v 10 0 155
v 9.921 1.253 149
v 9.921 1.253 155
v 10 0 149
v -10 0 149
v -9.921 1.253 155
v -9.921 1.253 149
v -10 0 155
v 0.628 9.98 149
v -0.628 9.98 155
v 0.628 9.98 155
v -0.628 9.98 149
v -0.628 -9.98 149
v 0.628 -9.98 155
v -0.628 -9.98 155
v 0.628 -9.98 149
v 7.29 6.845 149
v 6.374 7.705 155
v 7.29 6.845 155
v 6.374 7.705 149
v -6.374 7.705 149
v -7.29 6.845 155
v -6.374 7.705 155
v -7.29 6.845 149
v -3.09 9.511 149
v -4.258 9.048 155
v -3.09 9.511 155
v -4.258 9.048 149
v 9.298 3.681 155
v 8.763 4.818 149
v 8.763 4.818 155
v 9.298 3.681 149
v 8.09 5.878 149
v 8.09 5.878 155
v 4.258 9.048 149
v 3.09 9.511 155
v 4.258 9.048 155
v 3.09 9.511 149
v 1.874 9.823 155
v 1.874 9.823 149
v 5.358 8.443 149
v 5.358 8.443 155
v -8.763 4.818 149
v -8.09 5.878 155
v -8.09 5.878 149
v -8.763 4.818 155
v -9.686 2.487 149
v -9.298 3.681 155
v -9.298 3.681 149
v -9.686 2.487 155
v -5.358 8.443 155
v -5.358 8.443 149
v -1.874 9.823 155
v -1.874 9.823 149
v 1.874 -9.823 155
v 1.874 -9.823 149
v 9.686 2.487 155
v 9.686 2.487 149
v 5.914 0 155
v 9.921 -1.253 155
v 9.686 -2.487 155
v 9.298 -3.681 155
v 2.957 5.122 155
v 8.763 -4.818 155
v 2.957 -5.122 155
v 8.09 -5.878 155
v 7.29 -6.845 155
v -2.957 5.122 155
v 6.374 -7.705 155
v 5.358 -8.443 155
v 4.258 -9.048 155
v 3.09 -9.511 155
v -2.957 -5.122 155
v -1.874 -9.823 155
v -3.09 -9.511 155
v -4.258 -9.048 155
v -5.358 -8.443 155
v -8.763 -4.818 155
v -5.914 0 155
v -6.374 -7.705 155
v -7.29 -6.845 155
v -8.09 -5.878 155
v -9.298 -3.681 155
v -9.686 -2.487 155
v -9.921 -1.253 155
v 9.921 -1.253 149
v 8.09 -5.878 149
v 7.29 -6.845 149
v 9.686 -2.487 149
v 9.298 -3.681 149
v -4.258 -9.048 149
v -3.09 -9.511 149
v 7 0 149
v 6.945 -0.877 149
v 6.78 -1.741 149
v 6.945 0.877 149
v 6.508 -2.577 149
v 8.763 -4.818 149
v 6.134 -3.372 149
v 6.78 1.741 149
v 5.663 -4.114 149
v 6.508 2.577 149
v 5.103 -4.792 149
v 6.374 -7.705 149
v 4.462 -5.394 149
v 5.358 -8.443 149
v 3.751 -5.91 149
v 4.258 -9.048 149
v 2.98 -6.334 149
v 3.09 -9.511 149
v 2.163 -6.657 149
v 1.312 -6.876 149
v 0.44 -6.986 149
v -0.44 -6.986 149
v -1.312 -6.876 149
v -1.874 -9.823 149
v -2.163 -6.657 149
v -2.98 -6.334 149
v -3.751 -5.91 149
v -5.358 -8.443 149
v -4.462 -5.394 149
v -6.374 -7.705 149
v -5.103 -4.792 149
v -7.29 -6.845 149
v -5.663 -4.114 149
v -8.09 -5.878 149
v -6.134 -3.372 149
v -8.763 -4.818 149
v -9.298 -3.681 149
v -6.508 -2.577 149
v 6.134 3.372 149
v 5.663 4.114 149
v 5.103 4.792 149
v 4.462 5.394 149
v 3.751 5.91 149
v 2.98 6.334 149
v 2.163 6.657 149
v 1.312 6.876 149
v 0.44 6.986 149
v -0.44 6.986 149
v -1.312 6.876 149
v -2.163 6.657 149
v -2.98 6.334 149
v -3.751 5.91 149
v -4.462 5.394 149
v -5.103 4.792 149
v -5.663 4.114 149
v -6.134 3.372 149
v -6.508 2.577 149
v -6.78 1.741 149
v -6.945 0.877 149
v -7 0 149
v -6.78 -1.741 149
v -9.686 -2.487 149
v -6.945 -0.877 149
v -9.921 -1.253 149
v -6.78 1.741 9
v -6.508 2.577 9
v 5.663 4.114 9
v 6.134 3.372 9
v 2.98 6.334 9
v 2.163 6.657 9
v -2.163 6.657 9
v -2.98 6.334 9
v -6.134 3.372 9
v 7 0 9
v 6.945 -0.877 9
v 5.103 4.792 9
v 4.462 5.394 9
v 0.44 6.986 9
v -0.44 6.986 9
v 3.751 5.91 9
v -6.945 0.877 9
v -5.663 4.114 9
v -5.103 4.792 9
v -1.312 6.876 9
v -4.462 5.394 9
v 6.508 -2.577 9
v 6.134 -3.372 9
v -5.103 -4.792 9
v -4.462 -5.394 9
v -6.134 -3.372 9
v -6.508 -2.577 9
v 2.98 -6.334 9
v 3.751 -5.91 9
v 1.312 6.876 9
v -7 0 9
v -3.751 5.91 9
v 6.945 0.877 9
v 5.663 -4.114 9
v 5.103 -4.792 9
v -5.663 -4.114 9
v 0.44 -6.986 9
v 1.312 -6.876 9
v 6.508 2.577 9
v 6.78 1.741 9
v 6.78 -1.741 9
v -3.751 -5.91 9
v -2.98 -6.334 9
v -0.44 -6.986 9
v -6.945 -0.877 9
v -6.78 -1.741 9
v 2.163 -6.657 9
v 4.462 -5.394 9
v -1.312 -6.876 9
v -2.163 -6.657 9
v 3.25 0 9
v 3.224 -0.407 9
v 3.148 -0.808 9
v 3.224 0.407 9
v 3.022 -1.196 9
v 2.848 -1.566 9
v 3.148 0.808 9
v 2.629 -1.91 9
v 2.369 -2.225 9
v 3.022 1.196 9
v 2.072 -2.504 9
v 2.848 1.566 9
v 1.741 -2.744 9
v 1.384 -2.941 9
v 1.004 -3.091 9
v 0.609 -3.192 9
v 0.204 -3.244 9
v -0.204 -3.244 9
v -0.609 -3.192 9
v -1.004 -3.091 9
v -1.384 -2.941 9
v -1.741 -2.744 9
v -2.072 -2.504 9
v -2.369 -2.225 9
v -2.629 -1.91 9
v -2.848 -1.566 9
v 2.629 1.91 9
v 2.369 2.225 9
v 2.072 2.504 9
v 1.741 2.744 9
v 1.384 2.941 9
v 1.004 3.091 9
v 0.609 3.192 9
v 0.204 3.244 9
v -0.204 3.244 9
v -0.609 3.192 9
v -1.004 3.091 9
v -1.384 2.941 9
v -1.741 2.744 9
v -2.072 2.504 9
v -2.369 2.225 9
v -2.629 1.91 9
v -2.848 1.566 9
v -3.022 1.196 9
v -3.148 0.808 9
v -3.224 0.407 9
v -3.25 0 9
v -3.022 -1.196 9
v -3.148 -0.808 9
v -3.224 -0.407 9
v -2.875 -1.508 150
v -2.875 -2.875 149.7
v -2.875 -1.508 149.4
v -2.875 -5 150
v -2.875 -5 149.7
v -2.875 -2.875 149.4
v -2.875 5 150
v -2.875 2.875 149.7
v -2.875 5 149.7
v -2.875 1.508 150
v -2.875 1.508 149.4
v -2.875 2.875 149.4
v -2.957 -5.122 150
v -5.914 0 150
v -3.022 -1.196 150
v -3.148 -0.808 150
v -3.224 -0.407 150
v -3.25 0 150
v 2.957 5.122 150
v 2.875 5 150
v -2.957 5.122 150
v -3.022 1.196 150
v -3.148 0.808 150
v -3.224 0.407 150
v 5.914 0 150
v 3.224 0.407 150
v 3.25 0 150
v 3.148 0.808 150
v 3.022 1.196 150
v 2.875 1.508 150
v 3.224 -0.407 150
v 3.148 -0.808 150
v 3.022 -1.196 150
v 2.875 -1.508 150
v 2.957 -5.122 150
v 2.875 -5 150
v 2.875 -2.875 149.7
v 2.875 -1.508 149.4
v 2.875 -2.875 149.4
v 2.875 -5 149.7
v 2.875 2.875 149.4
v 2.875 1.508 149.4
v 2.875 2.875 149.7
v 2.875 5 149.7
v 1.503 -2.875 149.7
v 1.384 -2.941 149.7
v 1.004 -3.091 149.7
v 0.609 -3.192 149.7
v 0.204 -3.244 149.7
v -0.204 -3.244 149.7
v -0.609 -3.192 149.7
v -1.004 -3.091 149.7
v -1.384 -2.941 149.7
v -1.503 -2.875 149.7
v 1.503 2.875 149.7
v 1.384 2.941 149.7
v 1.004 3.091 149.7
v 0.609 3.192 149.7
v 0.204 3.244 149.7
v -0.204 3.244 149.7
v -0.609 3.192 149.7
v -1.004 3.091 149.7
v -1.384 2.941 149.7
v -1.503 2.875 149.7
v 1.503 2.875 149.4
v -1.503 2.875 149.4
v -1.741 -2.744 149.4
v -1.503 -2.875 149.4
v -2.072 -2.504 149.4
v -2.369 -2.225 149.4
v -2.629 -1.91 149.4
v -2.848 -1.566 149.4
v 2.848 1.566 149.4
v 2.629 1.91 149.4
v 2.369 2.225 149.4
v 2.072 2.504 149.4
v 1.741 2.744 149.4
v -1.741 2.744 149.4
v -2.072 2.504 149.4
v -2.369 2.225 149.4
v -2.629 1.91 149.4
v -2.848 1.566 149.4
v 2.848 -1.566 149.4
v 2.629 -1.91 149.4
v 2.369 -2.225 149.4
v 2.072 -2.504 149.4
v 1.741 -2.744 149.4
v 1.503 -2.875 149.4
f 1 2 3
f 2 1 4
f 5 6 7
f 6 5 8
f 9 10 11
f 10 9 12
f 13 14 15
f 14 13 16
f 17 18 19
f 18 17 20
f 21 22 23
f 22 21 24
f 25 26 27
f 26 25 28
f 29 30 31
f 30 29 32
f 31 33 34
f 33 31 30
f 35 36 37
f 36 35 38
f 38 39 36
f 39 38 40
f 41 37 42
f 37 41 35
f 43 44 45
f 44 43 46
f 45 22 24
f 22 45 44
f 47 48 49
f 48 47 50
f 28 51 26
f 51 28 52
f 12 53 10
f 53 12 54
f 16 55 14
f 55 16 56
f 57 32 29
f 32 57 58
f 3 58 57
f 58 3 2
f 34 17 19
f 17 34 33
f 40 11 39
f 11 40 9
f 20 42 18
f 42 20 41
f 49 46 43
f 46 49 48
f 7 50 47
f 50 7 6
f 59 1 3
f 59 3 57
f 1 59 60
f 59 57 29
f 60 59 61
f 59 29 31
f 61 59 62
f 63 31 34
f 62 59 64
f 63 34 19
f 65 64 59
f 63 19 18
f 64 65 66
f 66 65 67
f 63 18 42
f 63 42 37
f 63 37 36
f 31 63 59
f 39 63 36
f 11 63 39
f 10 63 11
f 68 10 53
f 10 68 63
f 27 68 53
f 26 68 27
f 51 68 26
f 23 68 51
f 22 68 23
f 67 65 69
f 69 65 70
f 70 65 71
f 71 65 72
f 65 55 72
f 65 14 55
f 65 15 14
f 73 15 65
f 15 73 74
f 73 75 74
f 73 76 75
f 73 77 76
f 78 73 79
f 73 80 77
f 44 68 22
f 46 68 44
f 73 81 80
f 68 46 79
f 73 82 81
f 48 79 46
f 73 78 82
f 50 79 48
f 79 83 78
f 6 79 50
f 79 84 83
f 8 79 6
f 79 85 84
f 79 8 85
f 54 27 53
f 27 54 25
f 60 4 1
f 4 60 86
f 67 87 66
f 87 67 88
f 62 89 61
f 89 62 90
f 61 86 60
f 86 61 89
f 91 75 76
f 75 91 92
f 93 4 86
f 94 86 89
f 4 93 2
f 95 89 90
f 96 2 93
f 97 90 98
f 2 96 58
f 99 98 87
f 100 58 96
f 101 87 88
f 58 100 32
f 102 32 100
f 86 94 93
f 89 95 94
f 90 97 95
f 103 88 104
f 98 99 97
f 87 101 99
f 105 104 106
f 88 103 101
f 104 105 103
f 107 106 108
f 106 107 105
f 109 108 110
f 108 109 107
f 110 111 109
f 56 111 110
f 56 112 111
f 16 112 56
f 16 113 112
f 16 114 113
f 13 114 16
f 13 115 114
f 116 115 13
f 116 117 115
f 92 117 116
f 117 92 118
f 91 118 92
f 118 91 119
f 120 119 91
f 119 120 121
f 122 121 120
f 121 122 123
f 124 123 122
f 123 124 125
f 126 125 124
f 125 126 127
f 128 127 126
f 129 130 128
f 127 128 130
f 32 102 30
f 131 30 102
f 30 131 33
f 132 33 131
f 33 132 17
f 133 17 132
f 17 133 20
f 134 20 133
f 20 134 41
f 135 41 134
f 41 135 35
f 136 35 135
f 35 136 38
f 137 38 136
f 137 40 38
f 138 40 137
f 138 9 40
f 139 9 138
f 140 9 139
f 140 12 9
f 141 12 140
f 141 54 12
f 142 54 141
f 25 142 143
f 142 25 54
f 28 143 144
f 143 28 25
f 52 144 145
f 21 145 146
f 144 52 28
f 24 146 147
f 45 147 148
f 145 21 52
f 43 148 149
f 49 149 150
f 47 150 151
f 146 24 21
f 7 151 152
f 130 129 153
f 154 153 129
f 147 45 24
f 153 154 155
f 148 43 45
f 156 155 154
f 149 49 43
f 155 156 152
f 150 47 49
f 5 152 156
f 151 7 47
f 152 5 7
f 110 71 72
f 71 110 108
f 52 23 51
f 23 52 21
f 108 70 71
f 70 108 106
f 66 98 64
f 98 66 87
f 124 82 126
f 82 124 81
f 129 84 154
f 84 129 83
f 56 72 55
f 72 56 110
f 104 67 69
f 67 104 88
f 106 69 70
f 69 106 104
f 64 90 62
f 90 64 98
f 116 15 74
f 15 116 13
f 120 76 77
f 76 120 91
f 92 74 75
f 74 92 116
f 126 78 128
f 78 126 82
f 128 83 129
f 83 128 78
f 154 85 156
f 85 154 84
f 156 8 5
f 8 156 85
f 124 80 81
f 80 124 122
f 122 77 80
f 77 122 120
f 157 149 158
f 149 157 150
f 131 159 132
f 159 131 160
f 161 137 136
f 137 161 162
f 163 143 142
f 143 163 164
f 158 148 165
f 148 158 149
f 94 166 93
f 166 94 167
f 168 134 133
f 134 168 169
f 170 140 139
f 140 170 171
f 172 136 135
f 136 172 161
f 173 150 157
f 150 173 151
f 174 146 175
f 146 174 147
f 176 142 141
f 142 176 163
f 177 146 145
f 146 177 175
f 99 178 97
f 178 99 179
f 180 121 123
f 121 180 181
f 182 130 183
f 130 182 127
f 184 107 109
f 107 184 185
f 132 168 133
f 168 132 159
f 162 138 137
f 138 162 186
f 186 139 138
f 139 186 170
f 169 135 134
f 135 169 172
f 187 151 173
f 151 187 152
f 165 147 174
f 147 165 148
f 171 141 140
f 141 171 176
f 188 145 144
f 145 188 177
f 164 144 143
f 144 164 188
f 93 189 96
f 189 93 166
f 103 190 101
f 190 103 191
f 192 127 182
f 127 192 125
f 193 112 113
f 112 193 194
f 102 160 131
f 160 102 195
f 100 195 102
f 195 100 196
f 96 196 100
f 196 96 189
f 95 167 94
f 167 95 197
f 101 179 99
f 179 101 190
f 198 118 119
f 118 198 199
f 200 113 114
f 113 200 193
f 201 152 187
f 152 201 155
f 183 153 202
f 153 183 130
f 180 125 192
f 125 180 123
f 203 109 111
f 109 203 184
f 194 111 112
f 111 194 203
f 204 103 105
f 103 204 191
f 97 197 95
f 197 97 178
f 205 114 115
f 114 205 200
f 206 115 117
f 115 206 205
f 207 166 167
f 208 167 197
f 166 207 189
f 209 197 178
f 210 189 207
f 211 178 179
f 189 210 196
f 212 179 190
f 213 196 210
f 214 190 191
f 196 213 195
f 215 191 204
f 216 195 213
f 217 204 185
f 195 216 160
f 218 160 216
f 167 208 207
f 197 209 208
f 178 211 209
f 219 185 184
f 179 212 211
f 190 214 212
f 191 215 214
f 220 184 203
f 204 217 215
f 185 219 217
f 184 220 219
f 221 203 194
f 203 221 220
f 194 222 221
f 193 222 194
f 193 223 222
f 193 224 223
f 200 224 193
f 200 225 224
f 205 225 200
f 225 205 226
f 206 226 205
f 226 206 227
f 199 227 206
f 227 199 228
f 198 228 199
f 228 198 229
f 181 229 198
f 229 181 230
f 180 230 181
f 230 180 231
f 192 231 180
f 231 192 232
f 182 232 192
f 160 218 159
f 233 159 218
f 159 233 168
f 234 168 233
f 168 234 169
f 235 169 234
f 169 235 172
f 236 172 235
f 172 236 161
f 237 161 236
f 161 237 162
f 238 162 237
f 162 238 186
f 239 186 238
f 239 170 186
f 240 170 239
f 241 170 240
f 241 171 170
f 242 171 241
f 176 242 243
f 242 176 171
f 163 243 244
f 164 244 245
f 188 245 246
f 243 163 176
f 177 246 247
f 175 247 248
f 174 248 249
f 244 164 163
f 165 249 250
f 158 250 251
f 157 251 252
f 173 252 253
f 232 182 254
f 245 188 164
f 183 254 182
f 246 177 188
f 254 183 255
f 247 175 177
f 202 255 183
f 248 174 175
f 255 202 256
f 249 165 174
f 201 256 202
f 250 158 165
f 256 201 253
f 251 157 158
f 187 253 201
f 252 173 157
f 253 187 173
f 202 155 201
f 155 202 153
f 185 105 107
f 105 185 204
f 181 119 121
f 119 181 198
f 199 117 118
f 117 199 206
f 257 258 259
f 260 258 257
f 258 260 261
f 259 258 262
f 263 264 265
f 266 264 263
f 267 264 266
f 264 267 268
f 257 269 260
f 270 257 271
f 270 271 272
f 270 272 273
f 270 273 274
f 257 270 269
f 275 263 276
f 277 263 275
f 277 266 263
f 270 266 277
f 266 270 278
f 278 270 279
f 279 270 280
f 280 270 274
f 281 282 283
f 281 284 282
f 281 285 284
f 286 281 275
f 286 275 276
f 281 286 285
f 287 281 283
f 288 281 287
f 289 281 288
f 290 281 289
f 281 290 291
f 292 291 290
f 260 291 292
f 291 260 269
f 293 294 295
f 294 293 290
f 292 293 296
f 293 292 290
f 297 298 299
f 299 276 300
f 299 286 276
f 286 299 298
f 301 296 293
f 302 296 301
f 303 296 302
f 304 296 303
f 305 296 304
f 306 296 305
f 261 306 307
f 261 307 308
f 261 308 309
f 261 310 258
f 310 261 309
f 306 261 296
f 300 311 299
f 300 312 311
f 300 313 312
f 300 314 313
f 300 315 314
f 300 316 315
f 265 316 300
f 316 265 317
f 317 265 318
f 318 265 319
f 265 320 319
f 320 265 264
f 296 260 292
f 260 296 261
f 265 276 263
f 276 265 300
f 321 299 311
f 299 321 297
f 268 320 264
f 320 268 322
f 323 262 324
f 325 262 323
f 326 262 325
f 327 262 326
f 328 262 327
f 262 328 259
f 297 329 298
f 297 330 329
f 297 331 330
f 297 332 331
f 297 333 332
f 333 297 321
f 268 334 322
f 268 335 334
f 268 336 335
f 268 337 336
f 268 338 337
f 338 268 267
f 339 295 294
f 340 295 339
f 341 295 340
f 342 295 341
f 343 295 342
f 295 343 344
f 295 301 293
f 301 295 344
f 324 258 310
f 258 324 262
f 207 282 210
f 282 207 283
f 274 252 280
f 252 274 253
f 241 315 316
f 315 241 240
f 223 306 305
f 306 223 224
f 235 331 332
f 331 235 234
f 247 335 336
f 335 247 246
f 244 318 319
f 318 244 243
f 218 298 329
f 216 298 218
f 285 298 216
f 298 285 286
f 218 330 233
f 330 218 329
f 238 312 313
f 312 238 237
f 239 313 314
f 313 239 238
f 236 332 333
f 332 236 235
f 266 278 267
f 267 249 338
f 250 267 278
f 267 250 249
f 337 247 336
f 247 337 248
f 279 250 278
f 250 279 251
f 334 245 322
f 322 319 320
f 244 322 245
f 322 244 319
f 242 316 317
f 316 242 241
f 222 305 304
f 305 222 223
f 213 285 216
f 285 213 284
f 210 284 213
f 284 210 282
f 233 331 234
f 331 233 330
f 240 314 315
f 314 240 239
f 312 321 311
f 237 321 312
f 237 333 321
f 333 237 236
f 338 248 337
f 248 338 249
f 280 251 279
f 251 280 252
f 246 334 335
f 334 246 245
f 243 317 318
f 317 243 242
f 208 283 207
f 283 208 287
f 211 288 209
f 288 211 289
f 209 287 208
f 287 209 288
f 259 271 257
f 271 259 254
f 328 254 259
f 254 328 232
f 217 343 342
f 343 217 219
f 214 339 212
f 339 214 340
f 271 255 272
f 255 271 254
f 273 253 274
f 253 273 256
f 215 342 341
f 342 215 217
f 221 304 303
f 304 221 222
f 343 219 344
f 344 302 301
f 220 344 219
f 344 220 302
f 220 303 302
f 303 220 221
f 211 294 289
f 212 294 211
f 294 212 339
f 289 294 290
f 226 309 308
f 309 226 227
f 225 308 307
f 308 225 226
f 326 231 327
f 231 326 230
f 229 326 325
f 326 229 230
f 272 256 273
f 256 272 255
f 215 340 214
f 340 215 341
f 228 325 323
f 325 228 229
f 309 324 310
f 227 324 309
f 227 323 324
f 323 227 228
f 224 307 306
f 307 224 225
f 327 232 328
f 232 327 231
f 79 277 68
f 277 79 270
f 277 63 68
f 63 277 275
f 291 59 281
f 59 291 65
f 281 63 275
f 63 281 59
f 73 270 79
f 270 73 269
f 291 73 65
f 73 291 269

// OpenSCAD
$fn = 50;


difference() {
	union() {
		translate(v = [0, 0, 149.0000000000]) {
			cylinder(h = 6, r = 10.0000000000);
		}
		translate(v = [0, 0, 9.0000000000]) {
			cylinder(h = 146, r = 7.0000000000);
		}
	}
	union() {
		translate(v = [0, 0, 155]) {
			rotate(a = [0, 0, 0]) {
				difference() {
					union() {
						#translate(v = [-2.8750000000, -5.0000000000, -5.3000000000]) {
							cube(size = [5.7500000000, 10, 0.3000000000]);
						}
						#translate(v = [-2.8750000000, -2.8750000000, -5.6000000000]) {
							cube(size = [5.7500000000, 5.7500000000, 0.3000000000]);
						}
						#translate(v = [-2.8750000000, -5.0000000000, 0]) {
							cube(size = [5.7500000000, 10, 0.3000000000]);
						}
						#translate(v = [-2.8750000000, -2.8750000000, 0.3000000000]) {
							cube(size = [5.7500000000, 5.7500000000, 0.3000000000]);
						}
						#translate(v = [0, 0, -100.0000000000]) {
							cylinder(h = 200, r = 3.2500000000);
						}
						translate(v = [0, 0, -5]) {
							#linear_extrude(height = 5) {
								polygon(points = [[5.9142500000, 0.0000000000], [2.9571250000, 5.1218907443], [-2.9571250000, 5.1218907443], [-5.9142500000, 0.0000000000], [-2.9571250000, -5.1218907443], [2.9571250000, -5.1218907443]]);
							}
						}
						#translate(v = [-2.8750000000, -5.0000000000, -5.3000000000]) {
							cube(size = [5.7500000000, 10, 0.3000000000]);
						}
						#translate(v = [-2.8750000000, -2.8750000000, -5.6000000000]) {
							cube(size = [5.7500000000, 5.7500000000, 0.3000000000]);
						}
						#translate(v = [-2.8750000000, -5.0000000000, 0]) {
							cube(size = [5.7500000000, 10, 0.3000000000]);
						}
						#translate(v = [-2.8750000000, -2.8750000000, 0.3000000000]) {
							cube(size = [5.7500000000, 5.7500000000, 0.3000000000]);
						}
						#translate(v = [0, 0, -100.0000000000]) {
							cylinder(h = 200, r = 3.2500000000);
						}
						#translate(v = [-2.8750000000, -5.0000000000, -5.3000000000]) {
							cube(size = [5.7500000000, 10, 0.3000000000]);
						}
						#translate(v = [-2.8750000000, -2.8750000000, -5.6000000000]) {
							cube(size = [5.7500000000, 5.7500000000, 0.3000000000]);
						}
						#translate(v = [-2.8750000000, -5.0000000000, 0]) {
							cube(size = [5.7500000000, 10, 0.3000000000]);
						}
						#translate(v = [-2.8750000000, -2.8750000000, 0.3000000000]) {
							cube(size = [5.7500000000, 5.7500000000, 0.3000000000]);
						}
						#translate(v = [0, 0, -100.0000000000]) {
							cylinder(h = 200, r = 3.2500000000);
						}
					}
					union();
				}
			}
		}
		#translate(v = [0, 0, -100.0000000000]) {
			cylinder(h = 200, r = 3.2500000000);
		}
	}
}
